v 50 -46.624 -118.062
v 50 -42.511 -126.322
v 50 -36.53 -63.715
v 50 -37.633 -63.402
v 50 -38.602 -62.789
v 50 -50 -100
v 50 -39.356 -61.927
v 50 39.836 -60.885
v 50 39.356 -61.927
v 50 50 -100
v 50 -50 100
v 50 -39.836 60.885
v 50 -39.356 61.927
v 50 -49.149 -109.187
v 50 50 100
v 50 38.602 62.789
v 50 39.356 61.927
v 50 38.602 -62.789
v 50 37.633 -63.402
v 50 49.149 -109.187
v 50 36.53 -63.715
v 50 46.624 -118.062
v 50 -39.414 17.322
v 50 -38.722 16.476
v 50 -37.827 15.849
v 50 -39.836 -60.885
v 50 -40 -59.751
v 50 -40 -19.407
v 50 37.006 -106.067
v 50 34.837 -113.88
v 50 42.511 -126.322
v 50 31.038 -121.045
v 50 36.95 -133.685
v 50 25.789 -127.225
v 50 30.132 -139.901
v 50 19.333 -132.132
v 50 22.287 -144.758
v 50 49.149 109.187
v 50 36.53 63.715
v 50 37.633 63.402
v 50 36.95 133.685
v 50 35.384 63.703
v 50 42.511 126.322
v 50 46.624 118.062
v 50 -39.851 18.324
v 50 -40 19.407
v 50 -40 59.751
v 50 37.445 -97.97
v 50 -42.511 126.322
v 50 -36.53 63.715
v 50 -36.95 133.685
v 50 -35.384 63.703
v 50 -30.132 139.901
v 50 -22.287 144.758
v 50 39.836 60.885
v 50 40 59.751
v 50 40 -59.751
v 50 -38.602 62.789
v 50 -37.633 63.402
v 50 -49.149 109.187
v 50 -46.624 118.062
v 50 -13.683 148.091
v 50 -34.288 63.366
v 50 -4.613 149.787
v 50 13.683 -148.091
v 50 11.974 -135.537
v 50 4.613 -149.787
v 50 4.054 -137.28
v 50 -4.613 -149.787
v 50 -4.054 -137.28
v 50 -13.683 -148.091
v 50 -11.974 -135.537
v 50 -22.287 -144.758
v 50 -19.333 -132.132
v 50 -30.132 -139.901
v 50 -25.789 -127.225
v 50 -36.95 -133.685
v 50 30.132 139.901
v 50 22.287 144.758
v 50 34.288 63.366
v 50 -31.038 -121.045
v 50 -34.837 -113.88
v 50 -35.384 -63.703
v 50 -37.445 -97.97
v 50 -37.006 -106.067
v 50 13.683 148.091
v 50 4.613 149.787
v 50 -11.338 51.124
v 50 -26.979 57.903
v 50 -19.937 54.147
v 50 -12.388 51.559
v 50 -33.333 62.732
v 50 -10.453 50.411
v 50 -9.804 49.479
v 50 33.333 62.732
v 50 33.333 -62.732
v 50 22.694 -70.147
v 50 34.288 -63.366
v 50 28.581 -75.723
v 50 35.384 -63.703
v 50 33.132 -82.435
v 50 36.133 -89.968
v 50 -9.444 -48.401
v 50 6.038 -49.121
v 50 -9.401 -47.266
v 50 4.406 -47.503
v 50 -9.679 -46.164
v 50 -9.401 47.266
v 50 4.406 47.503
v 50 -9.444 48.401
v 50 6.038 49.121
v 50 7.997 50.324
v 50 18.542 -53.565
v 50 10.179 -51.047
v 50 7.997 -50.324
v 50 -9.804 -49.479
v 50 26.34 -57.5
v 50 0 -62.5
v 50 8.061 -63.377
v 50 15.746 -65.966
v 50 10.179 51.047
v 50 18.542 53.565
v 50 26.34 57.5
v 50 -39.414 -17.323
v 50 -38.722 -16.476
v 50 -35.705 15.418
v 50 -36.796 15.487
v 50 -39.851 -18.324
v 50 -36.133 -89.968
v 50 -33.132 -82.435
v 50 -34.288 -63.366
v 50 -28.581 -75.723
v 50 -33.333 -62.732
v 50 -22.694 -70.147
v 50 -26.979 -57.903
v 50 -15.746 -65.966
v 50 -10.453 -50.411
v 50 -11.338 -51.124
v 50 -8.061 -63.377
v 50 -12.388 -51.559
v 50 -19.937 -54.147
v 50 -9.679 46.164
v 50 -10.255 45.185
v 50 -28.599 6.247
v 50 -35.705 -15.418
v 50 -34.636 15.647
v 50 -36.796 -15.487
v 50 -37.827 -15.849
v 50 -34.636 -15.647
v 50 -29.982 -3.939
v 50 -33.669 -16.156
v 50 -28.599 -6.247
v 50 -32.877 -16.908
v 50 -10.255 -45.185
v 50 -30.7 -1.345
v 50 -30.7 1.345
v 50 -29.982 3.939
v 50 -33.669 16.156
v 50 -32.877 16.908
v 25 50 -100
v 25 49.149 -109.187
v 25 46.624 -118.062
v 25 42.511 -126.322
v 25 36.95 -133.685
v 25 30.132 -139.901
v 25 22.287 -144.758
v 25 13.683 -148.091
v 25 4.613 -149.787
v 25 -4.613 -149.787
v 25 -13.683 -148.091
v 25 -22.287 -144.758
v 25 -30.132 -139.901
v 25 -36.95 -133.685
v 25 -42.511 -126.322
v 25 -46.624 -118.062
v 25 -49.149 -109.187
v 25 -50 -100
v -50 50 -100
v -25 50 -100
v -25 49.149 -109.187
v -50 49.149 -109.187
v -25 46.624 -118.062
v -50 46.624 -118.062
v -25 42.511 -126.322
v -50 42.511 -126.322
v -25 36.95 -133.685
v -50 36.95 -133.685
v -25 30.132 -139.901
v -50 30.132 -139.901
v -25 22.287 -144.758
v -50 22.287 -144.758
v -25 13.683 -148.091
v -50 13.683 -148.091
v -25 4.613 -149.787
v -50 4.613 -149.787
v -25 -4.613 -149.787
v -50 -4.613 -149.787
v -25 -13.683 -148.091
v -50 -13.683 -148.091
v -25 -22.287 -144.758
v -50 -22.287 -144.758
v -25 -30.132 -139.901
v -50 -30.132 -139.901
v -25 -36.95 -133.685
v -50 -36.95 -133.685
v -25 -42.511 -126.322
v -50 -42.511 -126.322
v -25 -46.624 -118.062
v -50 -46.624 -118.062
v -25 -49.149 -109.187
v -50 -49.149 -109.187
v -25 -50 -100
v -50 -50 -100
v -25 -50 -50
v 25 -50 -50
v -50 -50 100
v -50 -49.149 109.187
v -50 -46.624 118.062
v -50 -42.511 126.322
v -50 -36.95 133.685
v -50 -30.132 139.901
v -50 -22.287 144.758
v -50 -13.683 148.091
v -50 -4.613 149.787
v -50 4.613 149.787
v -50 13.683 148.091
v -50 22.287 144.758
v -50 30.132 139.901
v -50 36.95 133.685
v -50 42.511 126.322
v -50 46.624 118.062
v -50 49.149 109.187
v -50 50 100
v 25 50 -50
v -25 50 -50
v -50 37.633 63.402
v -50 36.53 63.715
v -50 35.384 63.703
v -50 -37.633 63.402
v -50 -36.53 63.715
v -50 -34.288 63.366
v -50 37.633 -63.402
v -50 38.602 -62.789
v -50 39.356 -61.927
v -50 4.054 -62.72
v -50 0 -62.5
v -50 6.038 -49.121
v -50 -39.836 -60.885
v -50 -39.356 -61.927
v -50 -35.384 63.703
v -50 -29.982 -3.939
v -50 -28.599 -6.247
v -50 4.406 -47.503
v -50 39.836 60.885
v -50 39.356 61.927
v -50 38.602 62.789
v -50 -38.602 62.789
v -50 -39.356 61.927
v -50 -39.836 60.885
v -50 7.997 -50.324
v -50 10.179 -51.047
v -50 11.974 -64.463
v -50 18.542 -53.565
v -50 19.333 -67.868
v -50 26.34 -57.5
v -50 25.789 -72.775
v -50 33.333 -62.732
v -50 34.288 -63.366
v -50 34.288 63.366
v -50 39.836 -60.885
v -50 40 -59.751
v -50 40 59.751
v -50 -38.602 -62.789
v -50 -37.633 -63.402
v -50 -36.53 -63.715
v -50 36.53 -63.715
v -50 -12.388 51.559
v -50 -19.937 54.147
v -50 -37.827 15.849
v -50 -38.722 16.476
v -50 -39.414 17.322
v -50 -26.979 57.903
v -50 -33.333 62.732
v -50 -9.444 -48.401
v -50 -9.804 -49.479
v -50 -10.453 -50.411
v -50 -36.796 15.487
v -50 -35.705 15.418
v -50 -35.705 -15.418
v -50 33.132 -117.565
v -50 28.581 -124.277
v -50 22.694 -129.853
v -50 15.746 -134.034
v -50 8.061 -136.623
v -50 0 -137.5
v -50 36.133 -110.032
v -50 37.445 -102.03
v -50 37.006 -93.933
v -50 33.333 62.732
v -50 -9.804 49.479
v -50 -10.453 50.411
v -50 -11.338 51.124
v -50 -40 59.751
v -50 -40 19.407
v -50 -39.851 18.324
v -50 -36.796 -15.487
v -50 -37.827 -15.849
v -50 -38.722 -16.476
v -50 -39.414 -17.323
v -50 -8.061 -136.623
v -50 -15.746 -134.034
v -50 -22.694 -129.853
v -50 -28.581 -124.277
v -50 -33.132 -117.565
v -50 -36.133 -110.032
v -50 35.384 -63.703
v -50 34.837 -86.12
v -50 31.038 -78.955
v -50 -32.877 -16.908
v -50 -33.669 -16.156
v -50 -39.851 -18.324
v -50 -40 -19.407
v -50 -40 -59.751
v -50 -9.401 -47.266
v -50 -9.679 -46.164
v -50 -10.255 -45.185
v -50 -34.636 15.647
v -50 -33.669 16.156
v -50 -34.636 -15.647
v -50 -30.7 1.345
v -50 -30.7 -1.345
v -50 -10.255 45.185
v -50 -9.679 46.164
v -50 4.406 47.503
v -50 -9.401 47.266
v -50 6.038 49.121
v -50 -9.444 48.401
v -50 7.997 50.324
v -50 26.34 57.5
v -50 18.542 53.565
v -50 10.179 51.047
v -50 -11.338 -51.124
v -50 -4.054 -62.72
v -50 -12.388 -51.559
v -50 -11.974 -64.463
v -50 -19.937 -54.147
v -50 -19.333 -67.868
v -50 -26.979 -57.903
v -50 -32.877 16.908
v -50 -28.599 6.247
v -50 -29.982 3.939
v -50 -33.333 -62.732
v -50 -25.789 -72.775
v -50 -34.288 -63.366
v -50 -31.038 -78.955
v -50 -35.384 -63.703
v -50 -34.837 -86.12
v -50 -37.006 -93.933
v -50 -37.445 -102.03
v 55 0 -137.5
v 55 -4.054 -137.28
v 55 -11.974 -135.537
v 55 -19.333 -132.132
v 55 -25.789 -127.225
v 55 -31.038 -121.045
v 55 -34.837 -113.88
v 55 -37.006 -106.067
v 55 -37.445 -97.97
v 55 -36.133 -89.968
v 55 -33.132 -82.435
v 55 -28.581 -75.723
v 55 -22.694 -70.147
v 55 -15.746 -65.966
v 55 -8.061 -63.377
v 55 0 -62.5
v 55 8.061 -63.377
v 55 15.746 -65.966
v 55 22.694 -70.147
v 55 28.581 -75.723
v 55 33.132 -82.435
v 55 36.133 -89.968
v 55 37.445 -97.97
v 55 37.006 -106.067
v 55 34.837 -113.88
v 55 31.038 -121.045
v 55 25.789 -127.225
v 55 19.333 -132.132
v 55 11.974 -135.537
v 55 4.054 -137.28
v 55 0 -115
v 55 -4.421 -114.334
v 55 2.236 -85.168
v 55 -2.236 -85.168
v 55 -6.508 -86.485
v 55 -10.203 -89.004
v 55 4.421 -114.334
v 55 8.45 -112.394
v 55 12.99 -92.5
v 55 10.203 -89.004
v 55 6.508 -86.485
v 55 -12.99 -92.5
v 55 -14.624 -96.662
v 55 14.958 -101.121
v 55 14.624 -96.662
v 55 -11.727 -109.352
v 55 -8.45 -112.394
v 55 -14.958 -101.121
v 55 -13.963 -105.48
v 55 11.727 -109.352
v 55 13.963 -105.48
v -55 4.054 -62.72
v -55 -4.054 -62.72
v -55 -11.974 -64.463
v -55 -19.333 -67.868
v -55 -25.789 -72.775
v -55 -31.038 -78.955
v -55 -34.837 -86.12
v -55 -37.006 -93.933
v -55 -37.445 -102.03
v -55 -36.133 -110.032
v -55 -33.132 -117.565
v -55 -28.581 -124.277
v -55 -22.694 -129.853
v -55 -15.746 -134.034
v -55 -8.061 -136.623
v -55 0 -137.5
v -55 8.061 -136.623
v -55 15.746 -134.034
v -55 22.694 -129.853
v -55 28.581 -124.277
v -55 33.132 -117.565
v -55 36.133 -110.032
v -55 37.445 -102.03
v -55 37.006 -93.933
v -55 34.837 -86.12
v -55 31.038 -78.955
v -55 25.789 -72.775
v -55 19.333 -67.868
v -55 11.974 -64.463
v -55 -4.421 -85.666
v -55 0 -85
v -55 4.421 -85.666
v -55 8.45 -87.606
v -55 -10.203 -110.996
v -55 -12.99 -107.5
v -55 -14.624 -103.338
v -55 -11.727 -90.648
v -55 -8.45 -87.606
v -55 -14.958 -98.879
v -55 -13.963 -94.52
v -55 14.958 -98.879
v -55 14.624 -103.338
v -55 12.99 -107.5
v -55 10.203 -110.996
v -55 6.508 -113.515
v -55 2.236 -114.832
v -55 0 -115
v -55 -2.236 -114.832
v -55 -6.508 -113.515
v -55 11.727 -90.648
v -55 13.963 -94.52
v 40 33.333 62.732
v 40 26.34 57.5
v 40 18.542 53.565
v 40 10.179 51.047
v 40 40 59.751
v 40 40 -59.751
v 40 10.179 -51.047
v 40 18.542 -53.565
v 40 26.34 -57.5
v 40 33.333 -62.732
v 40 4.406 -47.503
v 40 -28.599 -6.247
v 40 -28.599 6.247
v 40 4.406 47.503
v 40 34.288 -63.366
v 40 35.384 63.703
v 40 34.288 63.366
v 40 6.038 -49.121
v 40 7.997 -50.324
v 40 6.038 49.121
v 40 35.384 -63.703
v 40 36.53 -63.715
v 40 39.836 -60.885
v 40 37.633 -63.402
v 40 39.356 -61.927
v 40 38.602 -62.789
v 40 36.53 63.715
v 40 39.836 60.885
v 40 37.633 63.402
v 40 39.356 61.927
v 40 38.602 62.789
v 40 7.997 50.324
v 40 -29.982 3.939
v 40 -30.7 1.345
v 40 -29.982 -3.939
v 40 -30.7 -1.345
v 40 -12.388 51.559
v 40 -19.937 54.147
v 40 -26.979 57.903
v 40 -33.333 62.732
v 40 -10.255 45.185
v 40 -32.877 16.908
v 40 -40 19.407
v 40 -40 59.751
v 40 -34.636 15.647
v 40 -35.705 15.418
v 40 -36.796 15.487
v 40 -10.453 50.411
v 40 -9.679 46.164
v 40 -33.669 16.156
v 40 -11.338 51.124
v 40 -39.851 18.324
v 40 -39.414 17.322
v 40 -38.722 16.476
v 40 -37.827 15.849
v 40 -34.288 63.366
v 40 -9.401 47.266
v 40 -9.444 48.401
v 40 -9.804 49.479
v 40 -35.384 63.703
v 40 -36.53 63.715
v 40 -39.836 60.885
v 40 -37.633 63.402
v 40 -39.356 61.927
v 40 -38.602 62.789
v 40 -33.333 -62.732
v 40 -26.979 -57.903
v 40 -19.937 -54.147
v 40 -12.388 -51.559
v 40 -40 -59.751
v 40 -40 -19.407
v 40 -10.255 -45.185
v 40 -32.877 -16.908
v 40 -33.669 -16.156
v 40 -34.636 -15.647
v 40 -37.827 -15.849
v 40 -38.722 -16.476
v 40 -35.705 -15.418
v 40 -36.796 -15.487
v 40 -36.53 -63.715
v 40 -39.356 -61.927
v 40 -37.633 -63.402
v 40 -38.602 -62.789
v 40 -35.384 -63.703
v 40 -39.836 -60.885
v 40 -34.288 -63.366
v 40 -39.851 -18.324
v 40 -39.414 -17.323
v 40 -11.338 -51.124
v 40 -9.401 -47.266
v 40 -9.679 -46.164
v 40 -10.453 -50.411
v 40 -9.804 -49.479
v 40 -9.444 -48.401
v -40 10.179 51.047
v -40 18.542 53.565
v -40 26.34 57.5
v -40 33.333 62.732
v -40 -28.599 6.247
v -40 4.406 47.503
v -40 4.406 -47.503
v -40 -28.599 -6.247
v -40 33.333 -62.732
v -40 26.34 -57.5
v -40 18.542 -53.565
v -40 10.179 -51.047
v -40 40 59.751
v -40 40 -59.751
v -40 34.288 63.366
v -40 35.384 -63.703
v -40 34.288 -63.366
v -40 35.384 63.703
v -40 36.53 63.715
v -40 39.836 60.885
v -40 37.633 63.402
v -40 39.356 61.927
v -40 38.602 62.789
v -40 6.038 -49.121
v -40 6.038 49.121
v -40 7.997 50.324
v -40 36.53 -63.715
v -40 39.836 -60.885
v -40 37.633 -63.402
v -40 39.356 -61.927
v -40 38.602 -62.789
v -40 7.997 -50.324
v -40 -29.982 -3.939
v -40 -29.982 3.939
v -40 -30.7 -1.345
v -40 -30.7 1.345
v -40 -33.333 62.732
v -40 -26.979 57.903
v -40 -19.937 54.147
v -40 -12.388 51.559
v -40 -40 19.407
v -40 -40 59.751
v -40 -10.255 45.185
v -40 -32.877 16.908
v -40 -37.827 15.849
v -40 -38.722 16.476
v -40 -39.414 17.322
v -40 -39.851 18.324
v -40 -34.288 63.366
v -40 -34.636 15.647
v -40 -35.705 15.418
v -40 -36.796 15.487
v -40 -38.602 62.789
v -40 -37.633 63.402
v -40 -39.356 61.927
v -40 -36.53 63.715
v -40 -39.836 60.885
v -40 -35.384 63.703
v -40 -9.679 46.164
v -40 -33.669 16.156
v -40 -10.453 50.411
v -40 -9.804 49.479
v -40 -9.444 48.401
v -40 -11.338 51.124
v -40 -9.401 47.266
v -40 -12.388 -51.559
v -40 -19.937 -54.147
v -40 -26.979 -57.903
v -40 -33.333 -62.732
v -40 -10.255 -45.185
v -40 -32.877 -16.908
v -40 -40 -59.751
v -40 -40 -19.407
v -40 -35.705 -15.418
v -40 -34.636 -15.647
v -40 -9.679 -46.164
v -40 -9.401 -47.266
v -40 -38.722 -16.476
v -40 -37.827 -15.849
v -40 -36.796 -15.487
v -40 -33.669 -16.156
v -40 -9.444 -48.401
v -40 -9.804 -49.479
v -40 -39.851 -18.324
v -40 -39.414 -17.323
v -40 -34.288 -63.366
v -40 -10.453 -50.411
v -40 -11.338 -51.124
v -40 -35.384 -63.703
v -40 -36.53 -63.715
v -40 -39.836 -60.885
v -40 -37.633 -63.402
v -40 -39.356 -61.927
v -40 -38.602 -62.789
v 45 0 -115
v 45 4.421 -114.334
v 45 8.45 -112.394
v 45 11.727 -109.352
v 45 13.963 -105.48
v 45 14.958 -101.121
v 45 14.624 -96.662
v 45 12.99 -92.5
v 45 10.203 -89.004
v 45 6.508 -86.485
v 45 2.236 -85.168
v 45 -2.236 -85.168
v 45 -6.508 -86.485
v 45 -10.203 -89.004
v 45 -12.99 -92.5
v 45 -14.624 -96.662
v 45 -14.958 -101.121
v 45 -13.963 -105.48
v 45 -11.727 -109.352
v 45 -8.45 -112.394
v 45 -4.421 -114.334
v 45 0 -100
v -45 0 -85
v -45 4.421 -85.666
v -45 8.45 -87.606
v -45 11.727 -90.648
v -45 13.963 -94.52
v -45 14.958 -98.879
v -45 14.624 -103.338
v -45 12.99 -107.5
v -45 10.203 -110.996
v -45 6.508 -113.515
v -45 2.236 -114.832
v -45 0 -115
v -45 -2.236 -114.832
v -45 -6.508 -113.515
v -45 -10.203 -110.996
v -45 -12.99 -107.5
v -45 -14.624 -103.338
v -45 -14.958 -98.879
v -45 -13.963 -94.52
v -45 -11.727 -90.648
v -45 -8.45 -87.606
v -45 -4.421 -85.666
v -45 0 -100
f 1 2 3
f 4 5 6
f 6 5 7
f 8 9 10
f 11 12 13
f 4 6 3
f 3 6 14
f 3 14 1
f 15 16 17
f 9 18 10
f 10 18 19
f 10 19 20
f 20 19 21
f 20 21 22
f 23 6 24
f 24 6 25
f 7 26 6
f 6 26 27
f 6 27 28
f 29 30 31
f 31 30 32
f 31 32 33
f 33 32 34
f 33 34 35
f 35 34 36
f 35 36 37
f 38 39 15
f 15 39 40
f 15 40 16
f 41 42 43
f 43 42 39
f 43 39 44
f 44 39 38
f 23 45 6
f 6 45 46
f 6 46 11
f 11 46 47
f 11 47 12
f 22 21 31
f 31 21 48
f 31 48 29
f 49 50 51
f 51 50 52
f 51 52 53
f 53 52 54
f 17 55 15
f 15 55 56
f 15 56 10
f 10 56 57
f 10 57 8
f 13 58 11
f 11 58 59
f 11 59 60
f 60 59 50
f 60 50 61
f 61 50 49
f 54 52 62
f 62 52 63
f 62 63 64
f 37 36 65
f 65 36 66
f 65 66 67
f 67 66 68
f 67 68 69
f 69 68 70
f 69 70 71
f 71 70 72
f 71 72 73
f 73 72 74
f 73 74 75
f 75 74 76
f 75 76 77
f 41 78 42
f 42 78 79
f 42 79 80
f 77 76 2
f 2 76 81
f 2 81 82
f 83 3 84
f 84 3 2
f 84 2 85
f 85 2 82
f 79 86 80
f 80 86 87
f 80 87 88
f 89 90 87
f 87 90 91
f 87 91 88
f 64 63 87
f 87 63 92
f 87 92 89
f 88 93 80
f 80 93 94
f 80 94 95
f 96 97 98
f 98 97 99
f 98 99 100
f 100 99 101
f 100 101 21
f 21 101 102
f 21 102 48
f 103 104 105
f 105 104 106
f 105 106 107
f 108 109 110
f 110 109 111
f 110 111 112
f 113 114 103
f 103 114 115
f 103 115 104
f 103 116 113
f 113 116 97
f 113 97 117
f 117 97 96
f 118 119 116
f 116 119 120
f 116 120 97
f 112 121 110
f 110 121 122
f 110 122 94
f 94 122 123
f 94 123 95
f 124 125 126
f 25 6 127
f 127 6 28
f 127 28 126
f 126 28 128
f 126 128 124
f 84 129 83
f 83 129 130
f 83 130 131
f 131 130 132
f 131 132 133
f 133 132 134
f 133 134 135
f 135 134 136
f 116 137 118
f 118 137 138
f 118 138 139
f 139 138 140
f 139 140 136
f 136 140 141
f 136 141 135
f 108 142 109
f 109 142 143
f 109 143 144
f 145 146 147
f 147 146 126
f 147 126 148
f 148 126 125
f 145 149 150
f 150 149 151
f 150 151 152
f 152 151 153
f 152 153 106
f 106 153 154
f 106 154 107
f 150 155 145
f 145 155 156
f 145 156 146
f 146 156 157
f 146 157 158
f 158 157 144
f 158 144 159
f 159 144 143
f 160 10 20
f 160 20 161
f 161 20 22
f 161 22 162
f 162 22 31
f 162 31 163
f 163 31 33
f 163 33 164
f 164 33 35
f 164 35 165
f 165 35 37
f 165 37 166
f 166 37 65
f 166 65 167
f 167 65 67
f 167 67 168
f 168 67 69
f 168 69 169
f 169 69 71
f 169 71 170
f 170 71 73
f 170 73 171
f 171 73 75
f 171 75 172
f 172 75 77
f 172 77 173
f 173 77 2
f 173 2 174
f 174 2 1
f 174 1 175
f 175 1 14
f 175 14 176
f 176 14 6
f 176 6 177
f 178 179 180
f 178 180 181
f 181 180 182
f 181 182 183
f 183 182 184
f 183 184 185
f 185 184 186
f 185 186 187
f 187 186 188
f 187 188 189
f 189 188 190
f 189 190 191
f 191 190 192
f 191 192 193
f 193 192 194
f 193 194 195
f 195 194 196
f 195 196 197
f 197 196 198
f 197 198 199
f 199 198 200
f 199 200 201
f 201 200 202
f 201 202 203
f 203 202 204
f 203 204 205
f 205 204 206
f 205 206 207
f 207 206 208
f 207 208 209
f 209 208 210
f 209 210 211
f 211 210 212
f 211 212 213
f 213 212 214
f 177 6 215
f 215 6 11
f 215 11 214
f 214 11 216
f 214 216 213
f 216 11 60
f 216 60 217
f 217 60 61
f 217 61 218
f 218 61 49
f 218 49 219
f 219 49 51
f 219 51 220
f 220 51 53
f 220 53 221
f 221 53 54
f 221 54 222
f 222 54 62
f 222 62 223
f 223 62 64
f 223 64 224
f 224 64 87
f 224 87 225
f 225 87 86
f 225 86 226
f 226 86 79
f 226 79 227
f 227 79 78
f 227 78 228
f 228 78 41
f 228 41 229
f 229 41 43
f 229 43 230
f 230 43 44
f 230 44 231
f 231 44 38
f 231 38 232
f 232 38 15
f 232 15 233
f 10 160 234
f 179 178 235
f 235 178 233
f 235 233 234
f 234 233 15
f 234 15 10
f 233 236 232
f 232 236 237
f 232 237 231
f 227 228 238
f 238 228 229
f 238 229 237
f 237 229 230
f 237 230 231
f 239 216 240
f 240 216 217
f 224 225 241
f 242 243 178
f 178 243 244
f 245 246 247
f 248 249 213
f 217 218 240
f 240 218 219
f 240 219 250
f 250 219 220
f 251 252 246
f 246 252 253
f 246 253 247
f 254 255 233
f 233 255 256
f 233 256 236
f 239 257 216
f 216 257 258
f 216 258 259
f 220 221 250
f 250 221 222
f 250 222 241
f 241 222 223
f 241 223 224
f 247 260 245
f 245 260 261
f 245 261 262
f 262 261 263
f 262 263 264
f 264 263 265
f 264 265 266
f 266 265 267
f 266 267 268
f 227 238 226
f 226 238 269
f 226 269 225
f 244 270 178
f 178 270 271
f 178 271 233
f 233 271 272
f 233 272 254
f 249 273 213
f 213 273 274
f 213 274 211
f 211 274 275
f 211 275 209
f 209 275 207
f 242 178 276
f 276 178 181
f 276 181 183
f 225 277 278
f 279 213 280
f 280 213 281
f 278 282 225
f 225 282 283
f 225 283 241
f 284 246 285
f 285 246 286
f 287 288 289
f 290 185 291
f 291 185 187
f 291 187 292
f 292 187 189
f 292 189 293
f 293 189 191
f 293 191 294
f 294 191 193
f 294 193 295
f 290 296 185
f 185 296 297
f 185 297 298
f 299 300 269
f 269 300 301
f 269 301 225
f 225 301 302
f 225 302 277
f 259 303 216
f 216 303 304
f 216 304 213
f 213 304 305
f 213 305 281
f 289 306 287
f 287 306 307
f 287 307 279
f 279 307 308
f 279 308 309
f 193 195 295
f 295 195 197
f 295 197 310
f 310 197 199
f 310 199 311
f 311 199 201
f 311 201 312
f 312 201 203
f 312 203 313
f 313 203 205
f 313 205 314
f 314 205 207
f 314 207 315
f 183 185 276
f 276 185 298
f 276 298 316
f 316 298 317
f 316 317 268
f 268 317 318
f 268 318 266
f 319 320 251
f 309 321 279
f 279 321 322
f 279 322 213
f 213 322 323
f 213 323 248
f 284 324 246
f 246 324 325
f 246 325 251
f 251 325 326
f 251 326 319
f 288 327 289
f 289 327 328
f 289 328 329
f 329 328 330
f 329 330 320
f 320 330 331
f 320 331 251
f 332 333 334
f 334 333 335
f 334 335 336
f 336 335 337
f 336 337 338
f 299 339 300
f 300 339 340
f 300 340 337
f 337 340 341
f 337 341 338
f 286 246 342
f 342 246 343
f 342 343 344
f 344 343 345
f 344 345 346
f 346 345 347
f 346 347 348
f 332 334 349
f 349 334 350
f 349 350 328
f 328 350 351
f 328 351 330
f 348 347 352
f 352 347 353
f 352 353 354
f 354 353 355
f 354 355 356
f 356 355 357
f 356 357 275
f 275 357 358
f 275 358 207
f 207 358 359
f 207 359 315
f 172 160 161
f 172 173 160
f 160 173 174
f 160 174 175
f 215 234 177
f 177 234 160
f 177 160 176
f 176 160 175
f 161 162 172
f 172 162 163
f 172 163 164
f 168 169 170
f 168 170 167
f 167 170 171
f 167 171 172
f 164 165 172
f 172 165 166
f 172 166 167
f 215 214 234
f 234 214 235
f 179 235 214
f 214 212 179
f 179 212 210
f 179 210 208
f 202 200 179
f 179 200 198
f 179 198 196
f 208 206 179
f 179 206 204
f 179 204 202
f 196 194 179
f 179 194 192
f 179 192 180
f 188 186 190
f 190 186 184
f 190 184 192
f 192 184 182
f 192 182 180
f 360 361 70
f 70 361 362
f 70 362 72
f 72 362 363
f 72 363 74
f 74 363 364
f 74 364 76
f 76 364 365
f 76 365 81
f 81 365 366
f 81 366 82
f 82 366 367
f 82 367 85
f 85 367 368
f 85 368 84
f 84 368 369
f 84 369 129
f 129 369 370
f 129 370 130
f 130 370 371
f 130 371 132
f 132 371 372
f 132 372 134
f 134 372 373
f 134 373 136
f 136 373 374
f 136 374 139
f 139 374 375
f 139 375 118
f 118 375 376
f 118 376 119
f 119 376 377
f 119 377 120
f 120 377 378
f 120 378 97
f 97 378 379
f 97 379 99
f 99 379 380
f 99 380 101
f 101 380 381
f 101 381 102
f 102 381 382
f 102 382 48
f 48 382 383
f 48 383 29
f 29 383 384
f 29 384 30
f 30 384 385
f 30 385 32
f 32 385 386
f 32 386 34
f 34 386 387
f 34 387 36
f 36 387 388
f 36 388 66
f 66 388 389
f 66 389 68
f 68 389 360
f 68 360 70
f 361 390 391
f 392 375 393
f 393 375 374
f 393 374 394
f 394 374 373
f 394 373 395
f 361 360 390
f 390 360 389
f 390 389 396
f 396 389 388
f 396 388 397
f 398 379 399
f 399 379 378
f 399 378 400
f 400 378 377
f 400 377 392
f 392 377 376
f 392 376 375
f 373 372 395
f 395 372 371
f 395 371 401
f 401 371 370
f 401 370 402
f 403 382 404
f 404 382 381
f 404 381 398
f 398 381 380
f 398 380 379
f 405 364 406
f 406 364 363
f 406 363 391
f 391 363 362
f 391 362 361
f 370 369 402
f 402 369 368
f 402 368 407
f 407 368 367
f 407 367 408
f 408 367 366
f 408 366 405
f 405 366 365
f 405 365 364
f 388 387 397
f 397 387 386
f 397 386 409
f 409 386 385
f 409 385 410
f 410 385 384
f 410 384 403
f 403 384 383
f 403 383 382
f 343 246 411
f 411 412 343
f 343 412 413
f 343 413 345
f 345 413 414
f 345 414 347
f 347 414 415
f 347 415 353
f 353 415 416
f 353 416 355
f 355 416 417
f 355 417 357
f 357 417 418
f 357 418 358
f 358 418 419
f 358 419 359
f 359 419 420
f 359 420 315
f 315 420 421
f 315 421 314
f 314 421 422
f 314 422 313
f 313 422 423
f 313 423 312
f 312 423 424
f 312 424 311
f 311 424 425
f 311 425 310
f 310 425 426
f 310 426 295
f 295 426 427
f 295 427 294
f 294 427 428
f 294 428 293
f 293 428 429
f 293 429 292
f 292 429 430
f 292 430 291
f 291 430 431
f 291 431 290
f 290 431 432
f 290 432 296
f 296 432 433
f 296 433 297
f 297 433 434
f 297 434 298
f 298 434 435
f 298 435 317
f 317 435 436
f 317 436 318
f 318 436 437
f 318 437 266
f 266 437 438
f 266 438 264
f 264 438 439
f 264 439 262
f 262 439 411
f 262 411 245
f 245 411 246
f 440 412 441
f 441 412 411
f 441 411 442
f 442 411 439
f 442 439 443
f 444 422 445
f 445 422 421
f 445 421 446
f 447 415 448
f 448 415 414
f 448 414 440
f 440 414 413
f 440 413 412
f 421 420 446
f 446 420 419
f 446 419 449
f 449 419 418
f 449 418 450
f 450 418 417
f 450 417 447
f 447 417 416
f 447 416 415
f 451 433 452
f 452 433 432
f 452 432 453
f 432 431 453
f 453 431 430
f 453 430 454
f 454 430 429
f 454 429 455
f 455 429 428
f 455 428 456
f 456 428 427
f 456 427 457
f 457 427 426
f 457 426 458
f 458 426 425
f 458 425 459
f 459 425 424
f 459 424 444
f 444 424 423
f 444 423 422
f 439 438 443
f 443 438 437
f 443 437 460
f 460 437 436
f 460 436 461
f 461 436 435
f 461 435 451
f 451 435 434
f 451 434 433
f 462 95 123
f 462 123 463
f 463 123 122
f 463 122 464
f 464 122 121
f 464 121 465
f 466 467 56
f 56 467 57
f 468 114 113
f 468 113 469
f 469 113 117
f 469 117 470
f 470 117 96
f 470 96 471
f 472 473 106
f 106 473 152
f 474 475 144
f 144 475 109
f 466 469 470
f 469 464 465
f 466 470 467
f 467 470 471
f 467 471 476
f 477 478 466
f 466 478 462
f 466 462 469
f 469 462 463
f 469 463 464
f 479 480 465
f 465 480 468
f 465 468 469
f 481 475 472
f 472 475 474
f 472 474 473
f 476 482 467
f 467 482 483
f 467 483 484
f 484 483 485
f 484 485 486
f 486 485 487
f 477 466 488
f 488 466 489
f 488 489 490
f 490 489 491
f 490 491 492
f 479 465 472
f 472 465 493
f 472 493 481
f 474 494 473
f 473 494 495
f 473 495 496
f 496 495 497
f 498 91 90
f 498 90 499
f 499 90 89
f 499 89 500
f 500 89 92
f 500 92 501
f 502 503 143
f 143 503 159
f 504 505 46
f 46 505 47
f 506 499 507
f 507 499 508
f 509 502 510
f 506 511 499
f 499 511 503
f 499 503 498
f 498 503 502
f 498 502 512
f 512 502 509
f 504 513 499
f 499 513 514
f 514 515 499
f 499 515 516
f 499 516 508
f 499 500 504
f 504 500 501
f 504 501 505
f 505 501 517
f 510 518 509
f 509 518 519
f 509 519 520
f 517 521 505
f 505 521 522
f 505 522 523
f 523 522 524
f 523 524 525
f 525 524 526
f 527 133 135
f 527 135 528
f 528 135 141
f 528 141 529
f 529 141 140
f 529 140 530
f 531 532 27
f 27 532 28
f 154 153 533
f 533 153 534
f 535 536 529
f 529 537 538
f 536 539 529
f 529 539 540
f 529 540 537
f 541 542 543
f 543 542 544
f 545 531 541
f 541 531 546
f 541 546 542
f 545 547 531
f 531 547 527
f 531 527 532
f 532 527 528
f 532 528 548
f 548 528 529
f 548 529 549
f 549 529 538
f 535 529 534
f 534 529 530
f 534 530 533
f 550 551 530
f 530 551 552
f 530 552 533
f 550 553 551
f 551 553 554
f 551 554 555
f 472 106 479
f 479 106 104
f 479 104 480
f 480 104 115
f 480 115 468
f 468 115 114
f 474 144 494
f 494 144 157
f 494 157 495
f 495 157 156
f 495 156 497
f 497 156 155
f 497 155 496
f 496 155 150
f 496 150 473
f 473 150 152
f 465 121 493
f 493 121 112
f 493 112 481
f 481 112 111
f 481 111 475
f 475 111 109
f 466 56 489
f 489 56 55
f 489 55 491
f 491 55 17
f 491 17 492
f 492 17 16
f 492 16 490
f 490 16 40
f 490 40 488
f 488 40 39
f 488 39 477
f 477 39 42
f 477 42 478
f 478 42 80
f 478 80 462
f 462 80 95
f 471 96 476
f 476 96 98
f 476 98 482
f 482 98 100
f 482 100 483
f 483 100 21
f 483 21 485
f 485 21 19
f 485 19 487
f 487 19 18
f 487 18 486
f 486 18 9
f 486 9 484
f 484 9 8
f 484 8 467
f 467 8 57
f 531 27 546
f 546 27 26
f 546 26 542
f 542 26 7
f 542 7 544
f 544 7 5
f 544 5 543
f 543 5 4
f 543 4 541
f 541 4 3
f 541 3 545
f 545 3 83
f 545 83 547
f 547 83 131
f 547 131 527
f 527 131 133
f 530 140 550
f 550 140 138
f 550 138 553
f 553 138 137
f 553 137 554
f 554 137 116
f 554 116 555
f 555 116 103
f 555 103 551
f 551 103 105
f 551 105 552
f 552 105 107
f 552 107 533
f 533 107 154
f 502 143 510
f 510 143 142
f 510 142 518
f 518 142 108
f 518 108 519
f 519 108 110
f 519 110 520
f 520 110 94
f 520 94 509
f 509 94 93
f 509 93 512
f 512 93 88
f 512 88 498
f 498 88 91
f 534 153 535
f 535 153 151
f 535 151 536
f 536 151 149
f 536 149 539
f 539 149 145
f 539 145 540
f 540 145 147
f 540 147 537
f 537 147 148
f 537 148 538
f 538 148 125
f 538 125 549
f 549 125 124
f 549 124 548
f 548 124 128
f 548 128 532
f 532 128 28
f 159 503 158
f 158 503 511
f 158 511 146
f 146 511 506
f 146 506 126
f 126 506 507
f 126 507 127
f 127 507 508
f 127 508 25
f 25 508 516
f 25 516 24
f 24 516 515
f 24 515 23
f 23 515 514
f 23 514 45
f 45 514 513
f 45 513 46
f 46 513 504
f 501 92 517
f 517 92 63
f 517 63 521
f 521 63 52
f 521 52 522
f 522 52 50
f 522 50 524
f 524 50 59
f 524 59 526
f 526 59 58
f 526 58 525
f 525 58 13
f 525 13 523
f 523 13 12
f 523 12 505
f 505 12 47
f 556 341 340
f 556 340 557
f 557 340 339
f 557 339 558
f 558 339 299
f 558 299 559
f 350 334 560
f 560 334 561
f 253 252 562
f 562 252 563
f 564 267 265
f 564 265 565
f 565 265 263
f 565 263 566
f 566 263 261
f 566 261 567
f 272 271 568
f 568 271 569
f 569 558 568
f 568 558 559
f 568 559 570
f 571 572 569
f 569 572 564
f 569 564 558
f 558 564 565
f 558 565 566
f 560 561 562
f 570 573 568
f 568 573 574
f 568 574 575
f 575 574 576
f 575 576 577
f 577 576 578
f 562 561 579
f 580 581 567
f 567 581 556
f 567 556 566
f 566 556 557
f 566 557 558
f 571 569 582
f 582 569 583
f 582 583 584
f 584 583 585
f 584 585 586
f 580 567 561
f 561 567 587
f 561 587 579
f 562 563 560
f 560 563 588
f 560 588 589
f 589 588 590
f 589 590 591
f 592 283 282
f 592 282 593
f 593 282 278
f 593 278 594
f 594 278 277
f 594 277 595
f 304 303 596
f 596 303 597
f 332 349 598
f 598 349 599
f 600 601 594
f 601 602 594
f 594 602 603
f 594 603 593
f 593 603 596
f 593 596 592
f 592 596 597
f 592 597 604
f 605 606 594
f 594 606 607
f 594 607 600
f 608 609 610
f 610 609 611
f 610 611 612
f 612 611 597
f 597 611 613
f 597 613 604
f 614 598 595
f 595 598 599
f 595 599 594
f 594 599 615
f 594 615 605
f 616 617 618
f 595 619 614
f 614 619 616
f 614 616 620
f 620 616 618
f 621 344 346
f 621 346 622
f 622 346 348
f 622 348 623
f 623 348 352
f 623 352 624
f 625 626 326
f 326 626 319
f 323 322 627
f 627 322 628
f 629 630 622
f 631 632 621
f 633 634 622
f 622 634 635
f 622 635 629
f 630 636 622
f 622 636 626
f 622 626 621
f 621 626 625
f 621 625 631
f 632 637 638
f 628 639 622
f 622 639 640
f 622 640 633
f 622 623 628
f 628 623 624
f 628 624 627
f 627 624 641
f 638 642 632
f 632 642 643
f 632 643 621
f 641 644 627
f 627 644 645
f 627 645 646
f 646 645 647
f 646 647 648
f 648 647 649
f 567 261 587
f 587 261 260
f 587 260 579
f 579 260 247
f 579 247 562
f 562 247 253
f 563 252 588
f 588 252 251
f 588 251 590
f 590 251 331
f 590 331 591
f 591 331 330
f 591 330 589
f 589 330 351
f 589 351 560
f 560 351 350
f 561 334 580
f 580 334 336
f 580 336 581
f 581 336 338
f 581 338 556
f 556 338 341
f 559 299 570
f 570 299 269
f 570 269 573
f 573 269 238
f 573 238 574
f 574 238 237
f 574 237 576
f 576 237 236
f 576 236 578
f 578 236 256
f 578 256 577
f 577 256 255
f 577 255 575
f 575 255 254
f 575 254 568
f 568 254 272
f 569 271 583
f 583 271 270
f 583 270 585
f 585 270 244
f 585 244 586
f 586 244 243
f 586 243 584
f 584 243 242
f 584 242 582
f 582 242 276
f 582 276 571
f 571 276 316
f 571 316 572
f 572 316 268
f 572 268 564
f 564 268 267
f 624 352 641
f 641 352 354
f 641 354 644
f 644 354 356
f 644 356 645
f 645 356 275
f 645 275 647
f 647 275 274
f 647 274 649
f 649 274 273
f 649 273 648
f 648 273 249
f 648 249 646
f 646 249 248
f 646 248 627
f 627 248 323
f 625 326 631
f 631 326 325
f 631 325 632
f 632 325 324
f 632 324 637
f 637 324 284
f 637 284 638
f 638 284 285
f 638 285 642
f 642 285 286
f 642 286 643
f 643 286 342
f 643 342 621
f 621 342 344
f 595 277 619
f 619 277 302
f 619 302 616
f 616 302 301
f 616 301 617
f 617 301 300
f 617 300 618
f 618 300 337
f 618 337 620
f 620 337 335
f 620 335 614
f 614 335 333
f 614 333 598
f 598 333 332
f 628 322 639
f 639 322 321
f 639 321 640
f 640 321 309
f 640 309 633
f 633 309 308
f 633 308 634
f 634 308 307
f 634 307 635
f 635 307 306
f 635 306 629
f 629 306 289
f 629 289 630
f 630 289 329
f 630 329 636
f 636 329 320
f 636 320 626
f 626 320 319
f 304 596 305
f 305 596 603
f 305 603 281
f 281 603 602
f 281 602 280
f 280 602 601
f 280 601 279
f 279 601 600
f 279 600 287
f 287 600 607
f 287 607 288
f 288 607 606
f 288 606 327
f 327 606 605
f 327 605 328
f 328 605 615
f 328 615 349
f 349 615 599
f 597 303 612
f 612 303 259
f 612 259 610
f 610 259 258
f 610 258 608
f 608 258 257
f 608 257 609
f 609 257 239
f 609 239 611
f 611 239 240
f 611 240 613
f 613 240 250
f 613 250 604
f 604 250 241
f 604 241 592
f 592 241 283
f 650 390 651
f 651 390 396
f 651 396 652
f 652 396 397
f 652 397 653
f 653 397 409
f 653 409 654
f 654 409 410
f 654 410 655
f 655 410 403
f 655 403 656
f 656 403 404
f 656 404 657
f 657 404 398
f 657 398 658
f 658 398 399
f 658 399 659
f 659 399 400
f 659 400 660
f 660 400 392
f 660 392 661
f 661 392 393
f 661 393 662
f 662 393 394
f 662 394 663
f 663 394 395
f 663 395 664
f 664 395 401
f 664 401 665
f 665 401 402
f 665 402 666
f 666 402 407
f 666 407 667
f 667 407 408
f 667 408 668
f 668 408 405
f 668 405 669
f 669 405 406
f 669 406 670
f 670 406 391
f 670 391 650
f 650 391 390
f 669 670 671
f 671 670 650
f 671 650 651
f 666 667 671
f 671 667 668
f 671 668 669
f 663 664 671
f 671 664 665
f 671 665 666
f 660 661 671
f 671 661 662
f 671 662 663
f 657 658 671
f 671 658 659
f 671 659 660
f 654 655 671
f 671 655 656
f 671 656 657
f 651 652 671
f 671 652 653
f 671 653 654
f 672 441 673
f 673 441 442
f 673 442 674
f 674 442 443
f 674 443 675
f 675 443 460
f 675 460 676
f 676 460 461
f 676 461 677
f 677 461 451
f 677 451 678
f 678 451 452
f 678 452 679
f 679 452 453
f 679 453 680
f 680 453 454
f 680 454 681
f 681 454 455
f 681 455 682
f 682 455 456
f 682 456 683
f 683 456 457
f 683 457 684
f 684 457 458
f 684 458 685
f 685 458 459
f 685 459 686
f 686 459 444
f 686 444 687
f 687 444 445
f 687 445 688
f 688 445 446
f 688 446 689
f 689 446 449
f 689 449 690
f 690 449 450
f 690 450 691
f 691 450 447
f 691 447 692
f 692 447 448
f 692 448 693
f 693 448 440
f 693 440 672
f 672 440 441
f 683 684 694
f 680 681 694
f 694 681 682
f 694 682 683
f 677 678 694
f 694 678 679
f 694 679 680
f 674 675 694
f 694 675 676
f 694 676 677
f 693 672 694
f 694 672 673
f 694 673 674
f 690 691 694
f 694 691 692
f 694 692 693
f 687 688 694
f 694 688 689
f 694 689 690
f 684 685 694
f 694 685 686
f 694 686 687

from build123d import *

# Parameters (mm, degrees)
BOSS_EXTRUDE1_DEPTH      = 50
BOSS_EXTRUDE1_DEPTH_BACK = 50
CUT_EXTRUDE1_DEPTH       = 188.082869339
CUT_EXTRUDE1_DEPTH_BACK  = 188.082869339
SKETCH2_W                = 50
SKETCH2_H                = 200
SKETCH3_R                = 37.5
BOSS_EXTRUDE2_DEPTH      = 5
CUT_EXTRUDE2_START       = -10
CUT_EXTRUDE2_DEPTH       = 10
FILLET1_R                = 10
FILLET2_R                = 4
FILLET1_OF_MIRROR2_R     = 10
FILLET2_OF_MIRROR2_R     = 4
SKETCH5_R                = 15
CUT_EXTRUDE3_DEPTH       = 10


with BuildPart() as part:
    # Sketch1 → Boss-Extrude1 (new, two sides: drawn at the far end of the back side and taken through both)
    with BuildSketch(Plane(origin=(0, 0, 0), x_dir=(0, 0, -1), z_dir=(1, 0, 0)).offset(-BOSS_EXTRUDE1_DEPTH_BACK)):
        with BuildLine():
            Line((-100, -50), (100, -50))
            ThreePointArc((100, -50), (150, 0), (100, 50))
            Line((100, 50), (-100, 50))
            ThreePointArc((-100, 50), (-150, 0), (-100, -50))
        make_face()
    extrude(amount=BOSS_EXTRUDE1_DEPTH + BOSS_EXTRUDE1_DEPTH_BACK)

    # Sketch2 → Cut-Extrude1 (cut, two sides: drawn at the far end of the back side and taken through both)
    with BuildSketch(Plane(origin=(0, 50, 0), x_dir=(1, 0, 0), z_dir=(0, 1, 0)).offset(-CUT_EXTRUDE1_DEPTH_BACK)):
        with Locations((0, 150)):
            Rectangle(SKETCH2_W, SKETCH2_H)
    extrude(amount=CUT_EXTRUDE1_DEPTH + CUT_EXTRUDE1_DEPTH_BACK, mode=Mode.SUBTRACT)

    # Sketch3 → Boss-Extrude2 (add)
    with BuildSketch(Plane(origin=(50, 0, 0), x_dir=(0, 0, -1), z_dir=(1, 0, 0))):
        with Locations((100, 0)):
            Circle(SKETCH3_R)
    boss_extrude2 = extrude(amount=BOSS_EXTRUDE2_DEPTH)

    # Mirror1: Boss-Extrude2 across plane
    add(boss_extrude2.mirror(Plane(origin=(0, 0, 0), x_dir=(0, 0, 1), z_dir=(1, 0, 0))))

    # Sketch4 → Cut-Extrude2 (cut)
    with BuildSketch(Plane(origin=(50, 0, 0), x_dir=(0, 0, -1), z_dir=(1, 0, 0)).offset(CUT_EXTRUDE2_START)):
        with BuildLine():
            ThreePointArc((50.46067679, 6.77166567), (56.899460157, 25.344495759), (70, 40))
            Line((70, 40), (-70, 40))
            ThreePointArc((-70, 40), (-56.899460157, 25.344495759), (-50.46067679, 6.77166567))
            Line((-50.46067679, 6.77166567), (0, -33.596875763))
            Line((0, -33.596875763), (50.46067679, 6.77166567))
        make_face()
        with BuildLine():
            ThreePointArc((-50.373979518, -6.103940623), (-56.729785131, -25.053712404), (-70, -40))
            Line((-70, -40), (-8.003905297, -40))
            Line((-8.003905297, -40), (-50.373979518, -6.103940623))
        make_face()
        with BuildLine():
            Line((8.003905297, -40), (70, -40))
            ThreePointArc((70, -40), (56.729785131, -25.053712404), (50.373979518, -6.103940623))
            Line((50.373979518, -6.103940623), (8.003905297, -40))
        make_face()
    cut_extrude2 = extrude(amount=CUT_EXTRUDE2_DEPTH, mode=Mode.SUBTRACT)

    # Fillet1
    fillet1_edges = [part.edges().sort_by_distance(p)[0] for p in [
        (45, 6.77166567, -50.46067679),
        (45, -33.596875763, 0),
        (45, 6.77166567, 50.46067679),
    ]]
    fillet(fillet1_edges, radius=FILLET1_R)

    # Fillet2
    fillet2_edges = [part.edges().sort_by_distance(p)[0] for p in [
        (45, 40, 70),
        (45, 40, -70),
        (45, -40, -70),
        (45, -6.103940623, -50.373979518),
        (45, -6.103940623, 50.373979518),
        (45, -40, -8.003905297),
        (45, -40, 8.003905297),
        (45, -40, 70),
    ]]
    fillet(fillet2_edges, radius=FILLET2_R)

    # Mirror2: Cut-Extrude2 across plane
    add(cut_extrude2.mirror(Plane(origin=(0, 0, 0), x_dir=(0, 0, 1), z_dir=(1, 0, 0))), mode=Mode.SUBTRACT)

    # Fillet1 of Mirror2
    fillet1_of_mirror2_edges = [part.edges().sort_by_distance(p)[0] for p in [
        (-45, 6.77166567, -50.46067679),
        (-45, -33.596875763, 0),
        (-45, 6.77166567, 50.46067679),
    ]]
    fillet(fillet1_of_mirror2_edges, radius=FILLET1_OF_MIRROR2_R)

    # Fillet2 of Mirror2
    fillet2_of_mirror2_edges = [part.edges().sort_by_distance(p)[0] for p in [
        (-45, 40, 70),
        (-45, 40, -70),
        (-45, -40, -70),
        (-45, -6.103940623, -50.373979518),
        (-45, -6.103940623, 50.373979518),
        (-45, -40, -8.003905297),
        (-45, -40, 8.003905297),
        (-45, -40, 70),
    ]]
    fillet(fillet2_of_mirror2_edges, radius=FILLET2_OF_MIRROR2_R)

    # Sketch5 → Cut-Extrude3 (cut)
    with BuildSketch(Plane(origin=(55, 0, 0), x_dir=(0, 0, -1), z_dir=(1, 0, 0))):
        with Locations((100, 0)):
            Circle(SKETCH5_R)
    cut_extrude3 = extrude(amount=-CUT_EXTRUDE3_DEPTH, mode=Mode.SUBTRACT)

    # Mirror3: Cut-Extrude3 across plane
    add(cut_extrude3.mirror(Plane(origin=(0, 0, 0), x_dir=(0, 0, 1), z_dir=(1, 0, 0))), mode=Mode.SUBTRACT)


solid = part.part
